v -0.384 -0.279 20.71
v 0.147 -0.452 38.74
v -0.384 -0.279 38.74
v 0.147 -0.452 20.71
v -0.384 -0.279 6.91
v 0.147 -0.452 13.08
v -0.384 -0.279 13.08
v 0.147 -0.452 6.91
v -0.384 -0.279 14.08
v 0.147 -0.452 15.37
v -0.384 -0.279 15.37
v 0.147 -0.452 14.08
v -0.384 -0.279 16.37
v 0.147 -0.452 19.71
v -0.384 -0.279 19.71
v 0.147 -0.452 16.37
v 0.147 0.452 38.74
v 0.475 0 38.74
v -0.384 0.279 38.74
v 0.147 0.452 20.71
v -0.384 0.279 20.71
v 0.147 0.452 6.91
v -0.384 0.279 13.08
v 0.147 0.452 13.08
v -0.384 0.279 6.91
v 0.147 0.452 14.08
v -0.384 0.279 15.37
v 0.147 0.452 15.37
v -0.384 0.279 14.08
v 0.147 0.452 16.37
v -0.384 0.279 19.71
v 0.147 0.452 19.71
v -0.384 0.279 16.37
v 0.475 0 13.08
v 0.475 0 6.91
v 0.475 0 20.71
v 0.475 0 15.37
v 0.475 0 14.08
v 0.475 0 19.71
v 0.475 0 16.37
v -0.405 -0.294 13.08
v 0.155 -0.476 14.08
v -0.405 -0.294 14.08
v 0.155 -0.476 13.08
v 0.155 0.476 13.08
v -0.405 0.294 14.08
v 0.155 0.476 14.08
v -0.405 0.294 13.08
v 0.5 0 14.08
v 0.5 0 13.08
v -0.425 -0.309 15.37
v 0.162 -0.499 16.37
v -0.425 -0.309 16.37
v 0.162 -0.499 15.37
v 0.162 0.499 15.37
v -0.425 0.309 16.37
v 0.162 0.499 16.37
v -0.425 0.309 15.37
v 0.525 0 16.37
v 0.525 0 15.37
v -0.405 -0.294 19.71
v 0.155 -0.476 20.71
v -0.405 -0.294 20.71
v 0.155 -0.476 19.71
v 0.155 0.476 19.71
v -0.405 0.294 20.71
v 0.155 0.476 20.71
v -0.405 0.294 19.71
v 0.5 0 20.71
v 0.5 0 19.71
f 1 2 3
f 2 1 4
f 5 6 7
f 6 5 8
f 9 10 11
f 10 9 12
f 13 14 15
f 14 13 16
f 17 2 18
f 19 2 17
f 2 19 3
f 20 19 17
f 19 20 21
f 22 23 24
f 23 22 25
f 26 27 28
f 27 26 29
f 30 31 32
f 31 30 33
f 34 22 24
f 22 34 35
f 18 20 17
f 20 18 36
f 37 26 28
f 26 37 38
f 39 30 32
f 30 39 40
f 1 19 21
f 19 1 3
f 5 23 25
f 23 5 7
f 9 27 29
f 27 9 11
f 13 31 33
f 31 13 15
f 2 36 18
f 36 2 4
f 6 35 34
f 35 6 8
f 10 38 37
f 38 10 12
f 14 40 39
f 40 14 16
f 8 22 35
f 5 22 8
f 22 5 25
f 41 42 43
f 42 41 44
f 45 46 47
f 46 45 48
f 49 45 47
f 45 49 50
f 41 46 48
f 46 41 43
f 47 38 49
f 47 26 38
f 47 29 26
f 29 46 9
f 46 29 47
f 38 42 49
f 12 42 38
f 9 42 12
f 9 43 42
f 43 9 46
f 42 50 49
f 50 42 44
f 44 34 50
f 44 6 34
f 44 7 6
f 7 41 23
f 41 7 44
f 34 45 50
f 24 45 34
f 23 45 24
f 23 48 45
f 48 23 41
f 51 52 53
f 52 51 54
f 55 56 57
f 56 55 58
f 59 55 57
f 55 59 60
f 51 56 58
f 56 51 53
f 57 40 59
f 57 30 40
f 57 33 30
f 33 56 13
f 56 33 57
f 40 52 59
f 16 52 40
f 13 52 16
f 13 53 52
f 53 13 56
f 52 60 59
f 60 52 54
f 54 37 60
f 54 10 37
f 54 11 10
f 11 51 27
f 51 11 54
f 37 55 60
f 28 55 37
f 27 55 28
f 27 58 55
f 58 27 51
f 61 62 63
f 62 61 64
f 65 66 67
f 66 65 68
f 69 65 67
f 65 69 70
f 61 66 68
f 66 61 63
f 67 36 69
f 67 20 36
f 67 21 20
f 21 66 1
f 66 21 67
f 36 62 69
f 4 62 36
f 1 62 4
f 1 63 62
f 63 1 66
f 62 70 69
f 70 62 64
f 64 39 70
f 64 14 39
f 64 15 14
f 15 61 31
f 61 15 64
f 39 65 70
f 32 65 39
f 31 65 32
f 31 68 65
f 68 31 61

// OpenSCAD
module 050_STB255P() {
    color("Gray")
    // QATech.com
    translate([0,0,43.18-36.27])cylinder(h=31.83,d=0.95,center=false);
    translate([0,0,8+5.08])cylinder(h=1,d=1.0,center=false);
    color("fuchsia")
    translate([0,0,8+7.37])cylinder(h=1,d=1.05,center=false);
    translate([0,0,8+11.71])cylinder(h=1,d=1.0,center=false);      
}

/* Define the hole that needs to be cut for this socket */
module 050_STB255P_pinhole() {
    d_top_ring = 1;  //  top ring diameter
    d_bottom_ring = 0.85;  //  lower ring diameter
    d_shaft = 0.68;  //  diameter of shaft
    rings_dz = 2;  //  separation between rings
    ring_top_dz = 1;  //  opening to top ring separation
    
    through_all = 1000;
    cylinder(h=through_all,d=d_shaft,center=true);
    translate([0,0,through_all/2-ring_top_dz])cylinder(h=through_all,d=d_top_ring,center=true);
    translate([0,0,through_all/2-(ring_top_dz+rings_dz)])cylinder(h=through_all,d=d_bottom_ring,center=true);
}
050_STB255P();
